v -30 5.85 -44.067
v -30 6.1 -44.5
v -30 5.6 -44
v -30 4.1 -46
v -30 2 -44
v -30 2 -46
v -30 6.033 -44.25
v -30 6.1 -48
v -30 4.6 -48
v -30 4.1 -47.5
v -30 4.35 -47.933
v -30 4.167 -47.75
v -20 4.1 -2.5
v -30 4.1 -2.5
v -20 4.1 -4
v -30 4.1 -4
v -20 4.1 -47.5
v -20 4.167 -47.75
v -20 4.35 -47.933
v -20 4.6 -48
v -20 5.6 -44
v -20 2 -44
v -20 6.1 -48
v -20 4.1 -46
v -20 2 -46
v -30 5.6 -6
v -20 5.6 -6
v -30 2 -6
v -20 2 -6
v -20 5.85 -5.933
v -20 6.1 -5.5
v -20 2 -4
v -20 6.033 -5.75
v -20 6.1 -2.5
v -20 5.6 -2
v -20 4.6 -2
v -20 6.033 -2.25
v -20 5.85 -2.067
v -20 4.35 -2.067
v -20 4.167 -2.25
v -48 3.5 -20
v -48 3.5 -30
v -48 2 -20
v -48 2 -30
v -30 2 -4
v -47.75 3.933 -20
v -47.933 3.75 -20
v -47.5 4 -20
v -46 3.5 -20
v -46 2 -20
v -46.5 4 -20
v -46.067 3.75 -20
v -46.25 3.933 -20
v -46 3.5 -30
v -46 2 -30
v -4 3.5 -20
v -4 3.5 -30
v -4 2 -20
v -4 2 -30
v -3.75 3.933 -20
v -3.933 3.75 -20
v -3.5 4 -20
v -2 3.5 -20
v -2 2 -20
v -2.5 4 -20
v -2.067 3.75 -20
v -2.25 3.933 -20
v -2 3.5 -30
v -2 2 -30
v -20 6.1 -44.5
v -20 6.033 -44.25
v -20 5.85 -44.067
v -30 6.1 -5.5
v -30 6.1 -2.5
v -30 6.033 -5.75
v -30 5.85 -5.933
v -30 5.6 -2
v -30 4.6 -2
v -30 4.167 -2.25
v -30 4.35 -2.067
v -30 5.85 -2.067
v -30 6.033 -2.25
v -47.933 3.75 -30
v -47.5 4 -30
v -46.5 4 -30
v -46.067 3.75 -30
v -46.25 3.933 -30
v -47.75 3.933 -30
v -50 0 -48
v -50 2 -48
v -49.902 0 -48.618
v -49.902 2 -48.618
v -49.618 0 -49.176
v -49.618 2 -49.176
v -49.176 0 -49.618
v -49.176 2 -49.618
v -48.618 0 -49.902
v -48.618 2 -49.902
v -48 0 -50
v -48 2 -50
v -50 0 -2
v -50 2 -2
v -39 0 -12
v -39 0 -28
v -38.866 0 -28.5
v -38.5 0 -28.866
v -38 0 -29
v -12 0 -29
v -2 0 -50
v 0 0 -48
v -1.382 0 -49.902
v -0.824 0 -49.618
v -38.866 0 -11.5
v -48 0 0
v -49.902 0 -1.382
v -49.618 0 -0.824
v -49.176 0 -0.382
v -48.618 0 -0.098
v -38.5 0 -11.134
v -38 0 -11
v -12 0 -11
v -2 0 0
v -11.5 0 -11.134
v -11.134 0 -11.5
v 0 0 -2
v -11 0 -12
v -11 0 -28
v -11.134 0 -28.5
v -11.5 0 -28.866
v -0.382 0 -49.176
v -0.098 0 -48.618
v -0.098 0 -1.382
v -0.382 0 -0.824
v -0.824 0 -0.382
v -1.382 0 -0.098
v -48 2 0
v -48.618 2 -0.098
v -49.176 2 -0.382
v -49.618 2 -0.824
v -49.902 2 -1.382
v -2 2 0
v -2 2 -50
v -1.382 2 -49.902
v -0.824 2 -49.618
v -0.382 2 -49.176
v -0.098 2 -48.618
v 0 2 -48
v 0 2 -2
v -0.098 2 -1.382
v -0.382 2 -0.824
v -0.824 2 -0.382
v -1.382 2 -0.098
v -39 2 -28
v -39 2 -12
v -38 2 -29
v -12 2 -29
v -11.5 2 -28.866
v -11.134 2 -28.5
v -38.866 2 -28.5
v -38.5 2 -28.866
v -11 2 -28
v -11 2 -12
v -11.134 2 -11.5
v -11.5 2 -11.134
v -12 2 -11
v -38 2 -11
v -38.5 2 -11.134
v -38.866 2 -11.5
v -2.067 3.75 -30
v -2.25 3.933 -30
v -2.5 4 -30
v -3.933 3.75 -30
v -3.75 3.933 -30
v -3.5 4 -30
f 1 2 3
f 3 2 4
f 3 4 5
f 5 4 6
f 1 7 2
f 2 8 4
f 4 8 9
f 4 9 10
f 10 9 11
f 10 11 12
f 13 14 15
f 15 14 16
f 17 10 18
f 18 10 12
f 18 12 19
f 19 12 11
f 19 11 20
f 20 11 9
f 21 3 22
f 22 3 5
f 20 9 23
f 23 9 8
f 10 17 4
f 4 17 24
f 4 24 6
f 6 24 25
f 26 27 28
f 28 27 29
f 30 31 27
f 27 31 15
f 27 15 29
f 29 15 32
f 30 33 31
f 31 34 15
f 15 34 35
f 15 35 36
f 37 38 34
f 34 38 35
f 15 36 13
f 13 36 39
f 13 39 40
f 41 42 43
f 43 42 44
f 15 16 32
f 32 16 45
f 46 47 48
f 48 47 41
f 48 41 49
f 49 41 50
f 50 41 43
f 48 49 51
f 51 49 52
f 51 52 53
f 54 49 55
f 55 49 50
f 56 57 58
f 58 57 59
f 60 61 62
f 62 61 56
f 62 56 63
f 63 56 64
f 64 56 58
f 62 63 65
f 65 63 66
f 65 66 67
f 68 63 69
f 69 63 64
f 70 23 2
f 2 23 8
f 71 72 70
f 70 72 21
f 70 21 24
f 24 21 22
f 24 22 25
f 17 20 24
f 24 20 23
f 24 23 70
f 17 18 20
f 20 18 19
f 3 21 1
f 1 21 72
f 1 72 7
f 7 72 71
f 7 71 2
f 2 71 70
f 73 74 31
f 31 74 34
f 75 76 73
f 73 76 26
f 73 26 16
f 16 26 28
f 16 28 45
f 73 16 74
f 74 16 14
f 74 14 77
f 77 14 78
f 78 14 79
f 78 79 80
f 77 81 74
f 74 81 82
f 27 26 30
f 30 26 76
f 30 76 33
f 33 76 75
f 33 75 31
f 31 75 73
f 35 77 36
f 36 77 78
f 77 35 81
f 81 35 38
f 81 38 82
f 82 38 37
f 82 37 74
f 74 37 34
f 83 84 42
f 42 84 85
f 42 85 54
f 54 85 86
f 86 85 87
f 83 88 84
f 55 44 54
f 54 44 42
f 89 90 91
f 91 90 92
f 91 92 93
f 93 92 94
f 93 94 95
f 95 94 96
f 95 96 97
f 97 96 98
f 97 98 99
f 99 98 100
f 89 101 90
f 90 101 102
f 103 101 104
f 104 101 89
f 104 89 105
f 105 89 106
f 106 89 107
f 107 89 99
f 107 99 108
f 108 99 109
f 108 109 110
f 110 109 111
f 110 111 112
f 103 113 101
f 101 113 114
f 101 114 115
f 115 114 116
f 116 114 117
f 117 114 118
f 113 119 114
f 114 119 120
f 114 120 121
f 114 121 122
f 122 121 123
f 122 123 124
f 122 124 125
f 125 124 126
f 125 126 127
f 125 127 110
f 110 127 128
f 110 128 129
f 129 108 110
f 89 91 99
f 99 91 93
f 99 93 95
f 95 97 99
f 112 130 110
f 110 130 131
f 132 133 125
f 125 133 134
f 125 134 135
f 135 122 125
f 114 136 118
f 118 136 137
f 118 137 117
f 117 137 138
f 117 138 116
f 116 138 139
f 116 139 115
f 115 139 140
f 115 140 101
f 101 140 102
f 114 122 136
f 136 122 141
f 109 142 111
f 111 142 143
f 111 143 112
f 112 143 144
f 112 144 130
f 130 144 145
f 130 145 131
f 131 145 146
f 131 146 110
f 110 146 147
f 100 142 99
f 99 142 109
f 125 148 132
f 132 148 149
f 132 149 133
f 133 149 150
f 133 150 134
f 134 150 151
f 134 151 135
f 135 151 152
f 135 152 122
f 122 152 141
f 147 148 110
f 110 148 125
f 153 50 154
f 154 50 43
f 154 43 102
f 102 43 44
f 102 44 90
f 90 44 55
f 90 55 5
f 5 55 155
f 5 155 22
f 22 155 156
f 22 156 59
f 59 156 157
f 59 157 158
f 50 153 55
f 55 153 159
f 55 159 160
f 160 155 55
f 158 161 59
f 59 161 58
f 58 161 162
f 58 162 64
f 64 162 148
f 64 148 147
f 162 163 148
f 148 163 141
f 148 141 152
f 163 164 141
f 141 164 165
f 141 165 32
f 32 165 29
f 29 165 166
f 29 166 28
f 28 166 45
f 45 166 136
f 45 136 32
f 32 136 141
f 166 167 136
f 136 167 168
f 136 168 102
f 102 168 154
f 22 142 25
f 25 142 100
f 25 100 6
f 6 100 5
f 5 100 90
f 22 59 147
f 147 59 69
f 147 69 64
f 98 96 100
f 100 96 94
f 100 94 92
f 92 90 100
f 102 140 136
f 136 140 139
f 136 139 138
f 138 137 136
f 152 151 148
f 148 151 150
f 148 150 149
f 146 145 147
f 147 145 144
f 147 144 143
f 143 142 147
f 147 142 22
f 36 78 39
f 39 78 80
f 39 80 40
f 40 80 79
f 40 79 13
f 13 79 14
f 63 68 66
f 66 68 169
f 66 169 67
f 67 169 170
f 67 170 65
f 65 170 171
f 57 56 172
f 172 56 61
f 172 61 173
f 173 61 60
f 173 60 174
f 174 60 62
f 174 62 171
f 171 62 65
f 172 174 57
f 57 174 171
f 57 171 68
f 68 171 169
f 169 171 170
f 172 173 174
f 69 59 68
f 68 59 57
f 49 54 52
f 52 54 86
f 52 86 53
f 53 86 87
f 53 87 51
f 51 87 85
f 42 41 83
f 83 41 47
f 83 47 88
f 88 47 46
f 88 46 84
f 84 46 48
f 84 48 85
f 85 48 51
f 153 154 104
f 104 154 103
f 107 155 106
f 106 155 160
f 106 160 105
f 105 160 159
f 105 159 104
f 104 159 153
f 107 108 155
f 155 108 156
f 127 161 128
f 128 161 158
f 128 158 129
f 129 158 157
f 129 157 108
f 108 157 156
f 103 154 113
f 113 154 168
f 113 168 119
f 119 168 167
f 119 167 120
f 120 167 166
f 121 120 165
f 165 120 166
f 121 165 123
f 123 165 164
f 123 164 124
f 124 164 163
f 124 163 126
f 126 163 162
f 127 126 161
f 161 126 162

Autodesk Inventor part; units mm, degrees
ref_plane "YZ Plane" through (0, 0, 0) normal (1, 0, 0) x (0, 1, 0)
ref_plane "XZ Plane" through (0, 0, 0) normal (0, 1, 0) x (-1, 0, 0)
ref_plane "XY Plane" through (0, 0, 0) normal (0, 0, 1) x (1, 0, 0)
sketch "Sketch1" plane through (0, 0, 0) normal (0, 1, 0) x (-1, 0, 0)
  line L0 (0, 0) -> (50, 0)
  line L1 (50, 0) -> (50, -50)
  line L2 (50, -50) -> (0, -50)
  line L3 (0, -50) -> (0, 0)
  dimension "d0" = 50
  dimension "d1" = 50
extrude "Extrusion1" add sketch "Sketch1" along normal blind 2
fillet "Fillet1" radius 2 4 edges at (0, 1, 0) (0, 1, -50) (-50, 1, 0) (-50, 1, -50)
sketch "Sketch2" plane through (0, 2, 0) normal (0, 1, 0) x (1, 0, 0)
  line L0 (-48, 2) -> (-2, 2) construction
  line L1 (-2, 2) -> (-2, 48) construction
  line L2 (-2, 48) -> (-48, 48) construction
  line L3 (-48, 48) -> (-48, 2) construction
  line L4 (-48, 0) -> (-2, 0) projected
  line L5 (-50, 48) -> (-50, 2) projected
  line L6 (-2, 50) -> (-48, 50) projected
  line L7 (0, 2) -> (0, 48) projected
  line L8 (-25, 2) -> (-25, 6) construction
  line L9 (-25, 4) -> (-20, 4)
  line L10 (-20, 4) -> (-20, 6)
  line L11 (-20, 6) -> (-30, 6)
  line L12 (-30, 6) -> (-30, 4)
  line L13 (-30, 4) -> (-25, 4)
  line L14 (-48, 25) -> (-46, 25) construction
  line L15 (-46, 25) -> (-46, 20)
  line L16 (-46, 20) -> (-48, 20)
  line L17 (-46, 25) -> (-46, 30)
  line L18 (-46, 30) -> (-48, 30)
  line L19 (-48, 20) -> (-48, 30)
  line L20 (-4, 25) -> (-4, 20)
  line L21 (-4, 20) -> (-2, 20)
  line L22 (-4, 25) -> (-4, 30)
  line L23 (-4, 30) -> (-2, 30)
  line L24 (-2, 20) -> (-2, 30)
  line L25 (-25, 48) -> (-25, 44) construction
  line L26 (-25, 46) -> (-20, 46)
  line L27 (-20, 46) -> (-20, 44)
  line L28 (-20, 44) -> (-30, 44)
  line L29 (-30, 44) -> (-30, 46)
  line L30 (-30, 46) -> (-25, 46)
  point P0 (0, 0)
  dimension "d5" = 2
  dimension "d6" = 2
  dimension "d7" = 2
  dimension "d8" = 2
  dimension "d9" = 4
  dimension "d10" = 5
  dimension "d11" = 10
  dimension "d12" = 2
  dimension "d13" = 5
  dimension "d14" = 5
extrude "Extrusion2" add sketch "Sketch2" along normal blind 2 contours L15 L16 L19 L18 L17 | L22 L23 L24 L21 L20
extrude "Extrusion3" add sketch "Sketch2" along normal blind 4.1 contours L13 L12 L11 L10 L9 | L26 L27 L28 L29 L30
sketch "Sketch3" plane through (-20, 2, -46) normal (0, 0, -1) x (-1, 0, 0)
  line L0 (10, 4.1) -> (0, 4.1) projected
  line L1 (0, 4.1) -> (10, 4.1)
  line L2 (10, 4.1) -> (10, 2.1)
  line L3 (10, 2.1) -> (0, 2.1)
  line L4 (0, 2.1) -> (0, 4.1)
  point P0 (-20, -2)
  dimension "d19" = 10
  dimension "d20" = 2
extrude "Extrusion4" add sketch "Sketch3" along normal blind 2
fillet "Fillet2" radius 0.5 1 edges at (-25, 4.1, -48)
ref_plane "Work Plane1" through (-46, 4, -25) normal (0, 0, -1) x (1, 0, 0)
mirror "Mirror1" about plane through (-46, 4, -25) normal (0, 0, -1) of "Extrusion4"
fillet "Fillet3" radius 0.5 1 edges at (-25, 4.1, -2)
fillet "Fillet4" radius 0.5 7 edges at (-2, 4, -25) (-4, 4, -25) (-46, 4, -25) (-48, 4, -25) (-25, 6.1, -2) (-25, 6.1, -6) (-25, 6.1, -44)
sketch "Sketch4" plane through (0, 2, 0) normal (0, 1, 0) x (1, 0, 0)
  line L0 (-30, 2.5) -> (-20, 2.5) projected
  line L1 (-25, 2.5) -> (-25, 49.5156) construction
  line L2 (-30, 46) -> (-20, 46) projected
  line L3 (-11, 11) -> (-39, 11)
  line L4 (-39, 11) -> (-39, 29)
  line L5 (-39, 29) -> (-11, 29)
  line L6 (-11, 29) -> (-11, 11)
  line L7 (-11, 11) -> (-39, 29) construction
  line L8 (-39, 11) -> (-11, 29) construction
  line L9 (-48, 0) -> (-2, 0) projected
  point P0 (0, 0)
  point P1 (-25, 20)
  dimension "d26" = 28
  dimension "d27" = 18
  dimension "d28" = 20
extrude "Extrusion5" cut sketch "Sketch4" against normal blind 2
fillet "Fillet5" radius 1 4 edges at (-39, 1, -11) (-11, 1, -11) (-11, 1, -29) (-39, 1, -29)
properties part number "180caseTop"
